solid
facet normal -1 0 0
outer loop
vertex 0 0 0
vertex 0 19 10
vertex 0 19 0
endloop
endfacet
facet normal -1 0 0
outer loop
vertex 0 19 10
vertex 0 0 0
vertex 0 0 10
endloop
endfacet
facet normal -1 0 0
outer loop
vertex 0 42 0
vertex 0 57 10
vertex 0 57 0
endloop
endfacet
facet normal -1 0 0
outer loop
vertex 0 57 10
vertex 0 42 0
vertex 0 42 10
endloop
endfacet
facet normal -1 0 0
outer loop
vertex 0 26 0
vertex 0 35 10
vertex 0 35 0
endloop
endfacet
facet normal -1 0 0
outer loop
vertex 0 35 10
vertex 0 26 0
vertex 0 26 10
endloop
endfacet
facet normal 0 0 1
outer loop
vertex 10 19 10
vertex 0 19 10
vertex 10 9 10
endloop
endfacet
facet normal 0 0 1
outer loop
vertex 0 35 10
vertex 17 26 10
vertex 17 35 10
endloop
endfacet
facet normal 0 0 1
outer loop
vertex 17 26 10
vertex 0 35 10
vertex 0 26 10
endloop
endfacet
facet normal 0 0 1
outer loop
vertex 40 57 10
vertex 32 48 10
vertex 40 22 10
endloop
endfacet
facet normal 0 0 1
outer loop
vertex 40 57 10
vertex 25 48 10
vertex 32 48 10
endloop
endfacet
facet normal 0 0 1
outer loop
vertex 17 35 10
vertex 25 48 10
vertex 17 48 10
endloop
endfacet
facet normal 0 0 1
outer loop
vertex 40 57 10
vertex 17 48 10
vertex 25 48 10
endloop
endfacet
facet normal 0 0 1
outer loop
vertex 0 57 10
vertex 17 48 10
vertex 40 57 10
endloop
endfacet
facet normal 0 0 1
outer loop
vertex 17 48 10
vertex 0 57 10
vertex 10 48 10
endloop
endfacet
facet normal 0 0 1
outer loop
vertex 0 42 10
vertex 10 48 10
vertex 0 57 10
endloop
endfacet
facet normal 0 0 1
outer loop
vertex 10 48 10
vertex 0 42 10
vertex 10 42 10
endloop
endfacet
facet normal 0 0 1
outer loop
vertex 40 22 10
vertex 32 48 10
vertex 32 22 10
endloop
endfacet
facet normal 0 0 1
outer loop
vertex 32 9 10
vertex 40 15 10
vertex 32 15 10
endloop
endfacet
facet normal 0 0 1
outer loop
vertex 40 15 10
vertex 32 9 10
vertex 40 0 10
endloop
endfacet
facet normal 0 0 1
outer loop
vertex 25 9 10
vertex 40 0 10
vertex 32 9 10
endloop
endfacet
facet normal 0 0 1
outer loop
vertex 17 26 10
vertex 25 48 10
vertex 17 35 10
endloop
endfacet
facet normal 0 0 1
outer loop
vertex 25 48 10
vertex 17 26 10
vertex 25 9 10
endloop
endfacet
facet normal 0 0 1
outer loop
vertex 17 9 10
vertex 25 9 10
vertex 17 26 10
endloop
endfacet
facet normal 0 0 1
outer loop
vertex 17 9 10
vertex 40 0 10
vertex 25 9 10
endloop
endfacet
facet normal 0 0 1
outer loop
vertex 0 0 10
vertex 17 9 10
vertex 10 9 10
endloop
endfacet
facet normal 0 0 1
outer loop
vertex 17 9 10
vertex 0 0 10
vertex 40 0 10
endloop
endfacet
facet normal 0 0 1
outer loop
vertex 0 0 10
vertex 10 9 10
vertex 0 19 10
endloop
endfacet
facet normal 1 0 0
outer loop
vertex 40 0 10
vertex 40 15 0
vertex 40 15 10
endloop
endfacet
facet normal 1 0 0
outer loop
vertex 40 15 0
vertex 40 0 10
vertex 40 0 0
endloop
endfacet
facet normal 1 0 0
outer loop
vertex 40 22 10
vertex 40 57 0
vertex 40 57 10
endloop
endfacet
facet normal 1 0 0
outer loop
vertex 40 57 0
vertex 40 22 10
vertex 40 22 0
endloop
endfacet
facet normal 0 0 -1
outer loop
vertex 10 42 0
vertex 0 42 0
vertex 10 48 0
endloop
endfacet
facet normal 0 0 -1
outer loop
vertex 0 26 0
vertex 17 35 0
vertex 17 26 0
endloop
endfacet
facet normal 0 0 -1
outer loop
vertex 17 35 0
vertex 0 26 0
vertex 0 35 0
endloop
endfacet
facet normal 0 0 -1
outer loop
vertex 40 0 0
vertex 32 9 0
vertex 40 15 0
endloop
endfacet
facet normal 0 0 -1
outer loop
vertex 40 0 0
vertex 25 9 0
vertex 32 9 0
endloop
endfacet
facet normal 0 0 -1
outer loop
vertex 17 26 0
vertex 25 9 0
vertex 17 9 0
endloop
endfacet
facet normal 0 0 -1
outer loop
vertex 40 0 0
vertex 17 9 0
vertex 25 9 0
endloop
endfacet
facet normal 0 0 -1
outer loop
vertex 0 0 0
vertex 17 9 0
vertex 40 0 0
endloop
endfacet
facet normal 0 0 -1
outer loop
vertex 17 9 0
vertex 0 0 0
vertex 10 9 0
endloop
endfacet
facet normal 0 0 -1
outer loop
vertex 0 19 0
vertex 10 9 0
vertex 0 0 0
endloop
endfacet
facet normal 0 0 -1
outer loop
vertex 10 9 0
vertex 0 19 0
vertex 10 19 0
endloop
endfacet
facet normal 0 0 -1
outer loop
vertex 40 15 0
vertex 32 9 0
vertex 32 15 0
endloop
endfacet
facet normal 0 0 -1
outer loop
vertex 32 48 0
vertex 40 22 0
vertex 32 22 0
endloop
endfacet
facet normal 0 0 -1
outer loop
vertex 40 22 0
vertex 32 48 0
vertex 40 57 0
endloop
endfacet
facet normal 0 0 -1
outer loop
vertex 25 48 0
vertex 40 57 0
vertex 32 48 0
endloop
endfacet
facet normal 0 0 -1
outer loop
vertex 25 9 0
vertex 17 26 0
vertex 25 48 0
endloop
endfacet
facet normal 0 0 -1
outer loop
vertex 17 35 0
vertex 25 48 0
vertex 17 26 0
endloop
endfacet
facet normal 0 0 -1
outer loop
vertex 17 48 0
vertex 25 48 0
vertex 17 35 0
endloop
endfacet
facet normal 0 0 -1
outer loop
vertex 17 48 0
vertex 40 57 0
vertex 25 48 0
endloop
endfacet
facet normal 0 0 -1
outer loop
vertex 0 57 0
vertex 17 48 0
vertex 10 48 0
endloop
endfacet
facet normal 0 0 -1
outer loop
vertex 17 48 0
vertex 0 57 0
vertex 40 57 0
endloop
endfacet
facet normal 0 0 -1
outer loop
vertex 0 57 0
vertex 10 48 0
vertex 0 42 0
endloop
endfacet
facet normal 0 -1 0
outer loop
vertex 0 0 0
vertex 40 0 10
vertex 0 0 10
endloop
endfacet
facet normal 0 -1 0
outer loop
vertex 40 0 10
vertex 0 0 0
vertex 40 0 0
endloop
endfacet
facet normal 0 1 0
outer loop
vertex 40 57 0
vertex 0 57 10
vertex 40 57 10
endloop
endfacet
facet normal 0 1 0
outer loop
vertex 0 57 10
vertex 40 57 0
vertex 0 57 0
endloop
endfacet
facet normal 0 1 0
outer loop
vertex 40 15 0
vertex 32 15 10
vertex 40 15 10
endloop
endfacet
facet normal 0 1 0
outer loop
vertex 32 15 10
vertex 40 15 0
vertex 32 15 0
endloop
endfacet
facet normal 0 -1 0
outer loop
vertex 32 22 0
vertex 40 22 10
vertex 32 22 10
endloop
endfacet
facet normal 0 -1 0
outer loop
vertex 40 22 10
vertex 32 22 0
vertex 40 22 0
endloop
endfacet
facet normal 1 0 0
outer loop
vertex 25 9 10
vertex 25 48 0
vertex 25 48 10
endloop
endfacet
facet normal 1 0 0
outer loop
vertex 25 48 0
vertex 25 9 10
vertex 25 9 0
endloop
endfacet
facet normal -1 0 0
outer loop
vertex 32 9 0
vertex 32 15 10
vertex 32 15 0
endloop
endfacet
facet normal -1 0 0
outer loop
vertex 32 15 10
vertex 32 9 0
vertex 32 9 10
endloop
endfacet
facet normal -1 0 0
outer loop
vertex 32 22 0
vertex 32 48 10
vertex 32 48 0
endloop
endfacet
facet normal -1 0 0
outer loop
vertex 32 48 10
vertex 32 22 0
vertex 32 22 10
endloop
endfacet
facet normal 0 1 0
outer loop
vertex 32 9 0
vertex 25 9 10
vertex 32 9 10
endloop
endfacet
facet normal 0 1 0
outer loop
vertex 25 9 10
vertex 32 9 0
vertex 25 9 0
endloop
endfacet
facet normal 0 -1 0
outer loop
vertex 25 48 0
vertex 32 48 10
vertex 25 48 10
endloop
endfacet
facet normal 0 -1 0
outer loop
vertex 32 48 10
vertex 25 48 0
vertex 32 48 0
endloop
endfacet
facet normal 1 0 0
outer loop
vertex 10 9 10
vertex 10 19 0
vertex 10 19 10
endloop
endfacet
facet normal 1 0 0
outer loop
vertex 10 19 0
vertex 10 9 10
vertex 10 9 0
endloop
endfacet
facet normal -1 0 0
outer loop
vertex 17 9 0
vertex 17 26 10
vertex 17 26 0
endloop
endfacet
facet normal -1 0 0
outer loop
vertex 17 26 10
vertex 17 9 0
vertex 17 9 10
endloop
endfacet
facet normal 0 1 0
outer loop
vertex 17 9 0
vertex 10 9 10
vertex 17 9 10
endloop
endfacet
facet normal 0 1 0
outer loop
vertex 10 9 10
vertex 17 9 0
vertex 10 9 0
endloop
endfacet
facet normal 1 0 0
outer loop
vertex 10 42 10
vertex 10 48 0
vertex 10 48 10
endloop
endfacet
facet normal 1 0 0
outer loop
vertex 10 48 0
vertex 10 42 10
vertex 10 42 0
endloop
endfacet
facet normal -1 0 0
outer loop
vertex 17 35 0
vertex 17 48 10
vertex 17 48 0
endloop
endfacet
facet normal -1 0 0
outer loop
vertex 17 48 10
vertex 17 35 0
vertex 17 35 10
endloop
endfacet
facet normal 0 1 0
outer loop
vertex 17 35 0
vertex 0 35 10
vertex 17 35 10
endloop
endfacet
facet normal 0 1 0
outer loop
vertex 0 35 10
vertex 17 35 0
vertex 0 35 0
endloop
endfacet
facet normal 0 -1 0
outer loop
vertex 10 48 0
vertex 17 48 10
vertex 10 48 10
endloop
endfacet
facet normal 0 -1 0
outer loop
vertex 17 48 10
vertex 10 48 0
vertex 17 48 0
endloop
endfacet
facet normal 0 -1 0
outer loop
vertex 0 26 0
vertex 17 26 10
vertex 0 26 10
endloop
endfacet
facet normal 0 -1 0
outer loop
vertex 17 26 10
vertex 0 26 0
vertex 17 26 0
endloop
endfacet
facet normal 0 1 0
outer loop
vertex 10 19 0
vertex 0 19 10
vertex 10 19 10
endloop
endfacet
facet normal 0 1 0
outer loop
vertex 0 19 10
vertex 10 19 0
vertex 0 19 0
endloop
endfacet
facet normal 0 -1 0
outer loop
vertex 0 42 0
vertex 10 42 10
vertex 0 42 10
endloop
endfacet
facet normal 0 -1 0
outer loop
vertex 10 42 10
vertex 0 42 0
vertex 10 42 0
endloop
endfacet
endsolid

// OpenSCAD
difference() {
    cube([40, 57, 10]);
    
    translate([30, 15, 0])
    cube([10, 7, 10]);

    translate([25, 9, 0])
    cube([7, 39, 10]);

    translate([10, 9, 0])
    cube([7, 11, 10]);

    translate([10, 35, 0])
    cube([7, 13, 10]);

    translate([0, 19, 0])
    cube([17, 7, 10]);

    translate([0, 35, 0])
    cube([17, 7, 10]);
}    
